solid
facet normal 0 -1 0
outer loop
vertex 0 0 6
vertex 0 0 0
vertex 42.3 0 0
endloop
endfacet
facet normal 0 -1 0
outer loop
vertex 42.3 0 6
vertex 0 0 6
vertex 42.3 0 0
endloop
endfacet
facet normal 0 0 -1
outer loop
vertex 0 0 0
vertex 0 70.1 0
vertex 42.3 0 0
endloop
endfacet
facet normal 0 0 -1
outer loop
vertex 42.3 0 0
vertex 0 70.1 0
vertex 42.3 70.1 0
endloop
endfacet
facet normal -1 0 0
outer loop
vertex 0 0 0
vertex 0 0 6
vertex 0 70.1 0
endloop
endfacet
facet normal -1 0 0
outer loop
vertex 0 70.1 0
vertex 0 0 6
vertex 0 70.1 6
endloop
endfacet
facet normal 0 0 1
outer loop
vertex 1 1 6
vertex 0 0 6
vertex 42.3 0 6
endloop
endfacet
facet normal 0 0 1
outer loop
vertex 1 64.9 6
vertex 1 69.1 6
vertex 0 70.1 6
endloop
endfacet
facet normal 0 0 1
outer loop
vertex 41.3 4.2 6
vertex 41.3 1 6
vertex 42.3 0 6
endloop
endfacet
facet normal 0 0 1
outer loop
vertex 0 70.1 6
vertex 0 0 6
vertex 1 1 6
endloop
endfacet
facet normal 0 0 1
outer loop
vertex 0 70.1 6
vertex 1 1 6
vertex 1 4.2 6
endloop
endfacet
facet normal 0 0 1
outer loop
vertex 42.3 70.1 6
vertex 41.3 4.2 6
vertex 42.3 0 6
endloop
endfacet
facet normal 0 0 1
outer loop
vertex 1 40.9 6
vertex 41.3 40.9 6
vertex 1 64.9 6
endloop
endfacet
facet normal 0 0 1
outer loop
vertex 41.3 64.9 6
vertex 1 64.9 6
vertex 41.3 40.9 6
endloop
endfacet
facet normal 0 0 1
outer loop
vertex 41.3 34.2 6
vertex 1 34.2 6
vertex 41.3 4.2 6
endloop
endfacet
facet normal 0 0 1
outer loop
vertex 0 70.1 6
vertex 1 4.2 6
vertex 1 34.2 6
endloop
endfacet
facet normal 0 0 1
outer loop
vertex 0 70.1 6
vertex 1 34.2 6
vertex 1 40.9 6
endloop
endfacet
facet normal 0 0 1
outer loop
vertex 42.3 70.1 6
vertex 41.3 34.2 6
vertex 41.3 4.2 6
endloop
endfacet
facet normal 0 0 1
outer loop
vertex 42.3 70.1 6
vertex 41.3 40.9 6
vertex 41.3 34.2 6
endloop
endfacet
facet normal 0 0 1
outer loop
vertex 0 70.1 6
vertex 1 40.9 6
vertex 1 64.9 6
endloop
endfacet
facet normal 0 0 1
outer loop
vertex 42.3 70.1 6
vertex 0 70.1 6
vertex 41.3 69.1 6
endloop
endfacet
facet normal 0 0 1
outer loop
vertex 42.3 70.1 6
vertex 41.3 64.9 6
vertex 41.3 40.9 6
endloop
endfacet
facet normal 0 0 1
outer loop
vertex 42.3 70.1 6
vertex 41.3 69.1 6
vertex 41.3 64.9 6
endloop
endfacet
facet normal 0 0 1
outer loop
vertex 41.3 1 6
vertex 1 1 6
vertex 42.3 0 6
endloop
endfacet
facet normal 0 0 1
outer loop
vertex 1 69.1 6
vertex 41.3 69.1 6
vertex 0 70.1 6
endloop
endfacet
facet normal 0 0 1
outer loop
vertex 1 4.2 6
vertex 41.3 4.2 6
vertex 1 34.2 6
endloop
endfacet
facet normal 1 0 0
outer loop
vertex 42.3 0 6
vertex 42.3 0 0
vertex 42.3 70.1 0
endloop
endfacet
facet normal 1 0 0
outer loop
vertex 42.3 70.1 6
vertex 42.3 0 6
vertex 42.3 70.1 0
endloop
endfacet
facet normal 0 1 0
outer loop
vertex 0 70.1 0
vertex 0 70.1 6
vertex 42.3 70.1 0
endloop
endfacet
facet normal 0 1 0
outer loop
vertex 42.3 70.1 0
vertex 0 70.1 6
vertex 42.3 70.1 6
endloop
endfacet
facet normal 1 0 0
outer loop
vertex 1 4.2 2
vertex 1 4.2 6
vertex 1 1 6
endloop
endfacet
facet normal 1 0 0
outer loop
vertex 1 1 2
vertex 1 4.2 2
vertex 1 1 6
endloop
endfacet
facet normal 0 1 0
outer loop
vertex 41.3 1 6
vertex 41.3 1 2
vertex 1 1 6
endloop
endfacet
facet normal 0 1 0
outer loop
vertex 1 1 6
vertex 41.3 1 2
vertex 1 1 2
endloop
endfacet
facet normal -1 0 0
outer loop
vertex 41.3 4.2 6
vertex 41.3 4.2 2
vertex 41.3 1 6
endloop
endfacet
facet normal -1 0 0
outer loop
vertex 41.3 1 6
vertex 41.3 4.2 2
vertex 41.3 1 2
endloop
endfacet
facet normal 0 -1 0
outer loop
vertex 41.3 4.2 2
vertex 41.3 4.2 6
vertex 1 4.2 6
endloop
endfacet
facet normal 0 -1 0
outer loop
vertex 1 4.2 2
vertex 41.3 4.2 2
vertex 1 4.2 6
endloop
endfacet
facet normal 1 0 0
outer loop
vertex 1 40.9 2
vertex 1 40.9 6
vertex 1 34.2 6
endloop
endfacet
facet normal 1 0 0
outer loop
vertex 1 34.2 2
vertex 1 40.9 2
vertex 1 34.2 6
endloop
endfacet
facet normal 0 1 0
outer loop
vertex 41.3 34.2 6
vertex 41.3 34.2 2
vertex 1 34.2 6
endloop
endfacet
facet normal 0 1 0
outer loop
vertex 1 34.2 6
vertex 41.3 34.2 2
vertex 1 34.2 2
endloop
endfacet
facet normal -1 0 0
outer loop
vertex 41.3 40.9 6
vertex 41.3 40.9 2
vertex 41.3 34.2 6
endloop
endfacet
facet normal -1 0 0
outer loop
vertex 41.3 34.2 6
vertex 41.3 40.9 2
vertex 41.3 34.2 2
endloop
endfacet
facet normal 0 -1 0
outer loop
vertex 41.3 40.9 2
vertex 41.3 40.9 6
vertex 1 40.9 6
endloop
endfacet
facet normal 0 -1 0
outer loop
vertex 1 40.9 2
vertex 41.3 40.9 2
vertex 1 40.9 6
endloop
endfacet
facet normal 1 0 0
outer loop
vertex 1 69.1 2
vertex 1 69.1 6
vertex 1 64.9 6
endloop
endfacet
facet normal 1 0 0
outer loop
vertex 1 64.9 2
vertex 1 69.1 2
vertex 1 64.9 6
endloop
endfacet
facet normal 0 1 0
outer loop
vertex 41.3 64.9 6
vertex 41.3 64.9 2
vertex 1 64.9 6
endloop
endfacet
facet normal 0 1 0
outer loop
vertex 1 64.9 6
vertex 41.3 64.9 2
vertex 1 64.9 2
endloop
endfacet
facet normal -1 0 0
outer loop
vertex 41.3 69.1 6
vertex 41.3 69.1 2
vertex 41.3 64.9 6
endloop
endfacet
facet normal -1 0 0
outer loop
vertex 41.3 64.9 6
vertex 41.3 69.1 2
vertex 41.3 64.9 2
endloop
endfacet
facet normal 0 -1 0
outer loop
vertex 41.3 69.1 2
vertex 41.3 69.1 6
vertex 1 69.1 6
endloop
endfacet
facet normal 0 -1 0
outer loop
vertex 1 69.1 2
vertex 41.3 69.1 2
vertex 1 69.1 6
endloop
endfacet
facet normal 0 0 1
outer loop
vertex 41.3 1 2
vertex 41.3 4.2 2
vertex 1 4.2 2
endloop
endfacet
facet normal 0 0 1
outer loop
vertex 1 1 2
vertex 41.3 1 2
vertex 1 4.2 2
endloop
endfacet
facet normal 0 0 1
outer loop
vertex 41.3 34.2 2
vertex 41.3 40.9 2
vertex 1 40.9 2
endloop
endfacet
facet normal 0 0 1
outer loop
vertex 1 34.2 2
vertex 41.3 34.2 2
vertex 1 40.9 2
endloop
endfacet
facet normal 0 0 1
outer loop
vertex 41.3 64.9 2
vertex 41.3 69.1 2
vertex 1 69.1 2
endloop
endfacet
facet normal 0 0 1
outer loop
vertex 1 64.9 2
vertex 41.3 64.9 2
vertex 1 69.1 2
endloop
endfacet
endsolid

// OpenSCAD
$fn=100;

3dpcomp=0.2;

thickness=6;
gap1=30;
gap2=24;


slotw=40+3dpcomp+.1;
slot1=3+3dpcomp;
slot2=6.5+3dpcomp;
slot3=4 + 3dpcomp;
sloth=4;
framew=slotw+1+1;
frameh=slot1+slot2+slot3+gap1+gap2+1+1;

slotframe();



module slotframe() {

 difference() {
  
   linear_extrude(height=thickness)
   base();

	translate([0,0,thickness-sloth])
   linear_extrude( height=sloth)
   slot1();
	translate([0,0,thickness-sloth])
   linear_extrude( height=sloth)
   slot2();
	translate([0,0,thickness-sloth])
   linear_extrude( height=sloth)
   slot3();

 }

}

module base() {

 
polygon( [ [0,0],[framew,0],[framew,frameh],[0,frameh] ] , [   [0,1,2,3] ]);

}

module slot1() {
   color ( "blue") 
	translate([(framew-slotw)/2,1,0  ])
   polygon( [ [0,0],[slotw,0],[slotw,slot1],[0,slot1] ] , [   [0,1,2,3] ]);
	
}
module slot2() {
   color ( "blue") 
	translate([(framew-slotw)/2,(1+slot1+gap1) ,0  ])
   polygon( [ [0,0],[slotw,0],[slotw,slot2],[0,slot2] ] , [   [0,1,2,3] ]);
	
}
module slot3() {
   color ( "blue") 
	translate([(framew-slotw)/2,(1+slot1+gap1+slot2+gap2) ,0  ])
   polygon( [ [0,0],[slotw,0],[slotw,slot3],[0,slot3] ] , [   [0,1,2,3] ]);
	
}
